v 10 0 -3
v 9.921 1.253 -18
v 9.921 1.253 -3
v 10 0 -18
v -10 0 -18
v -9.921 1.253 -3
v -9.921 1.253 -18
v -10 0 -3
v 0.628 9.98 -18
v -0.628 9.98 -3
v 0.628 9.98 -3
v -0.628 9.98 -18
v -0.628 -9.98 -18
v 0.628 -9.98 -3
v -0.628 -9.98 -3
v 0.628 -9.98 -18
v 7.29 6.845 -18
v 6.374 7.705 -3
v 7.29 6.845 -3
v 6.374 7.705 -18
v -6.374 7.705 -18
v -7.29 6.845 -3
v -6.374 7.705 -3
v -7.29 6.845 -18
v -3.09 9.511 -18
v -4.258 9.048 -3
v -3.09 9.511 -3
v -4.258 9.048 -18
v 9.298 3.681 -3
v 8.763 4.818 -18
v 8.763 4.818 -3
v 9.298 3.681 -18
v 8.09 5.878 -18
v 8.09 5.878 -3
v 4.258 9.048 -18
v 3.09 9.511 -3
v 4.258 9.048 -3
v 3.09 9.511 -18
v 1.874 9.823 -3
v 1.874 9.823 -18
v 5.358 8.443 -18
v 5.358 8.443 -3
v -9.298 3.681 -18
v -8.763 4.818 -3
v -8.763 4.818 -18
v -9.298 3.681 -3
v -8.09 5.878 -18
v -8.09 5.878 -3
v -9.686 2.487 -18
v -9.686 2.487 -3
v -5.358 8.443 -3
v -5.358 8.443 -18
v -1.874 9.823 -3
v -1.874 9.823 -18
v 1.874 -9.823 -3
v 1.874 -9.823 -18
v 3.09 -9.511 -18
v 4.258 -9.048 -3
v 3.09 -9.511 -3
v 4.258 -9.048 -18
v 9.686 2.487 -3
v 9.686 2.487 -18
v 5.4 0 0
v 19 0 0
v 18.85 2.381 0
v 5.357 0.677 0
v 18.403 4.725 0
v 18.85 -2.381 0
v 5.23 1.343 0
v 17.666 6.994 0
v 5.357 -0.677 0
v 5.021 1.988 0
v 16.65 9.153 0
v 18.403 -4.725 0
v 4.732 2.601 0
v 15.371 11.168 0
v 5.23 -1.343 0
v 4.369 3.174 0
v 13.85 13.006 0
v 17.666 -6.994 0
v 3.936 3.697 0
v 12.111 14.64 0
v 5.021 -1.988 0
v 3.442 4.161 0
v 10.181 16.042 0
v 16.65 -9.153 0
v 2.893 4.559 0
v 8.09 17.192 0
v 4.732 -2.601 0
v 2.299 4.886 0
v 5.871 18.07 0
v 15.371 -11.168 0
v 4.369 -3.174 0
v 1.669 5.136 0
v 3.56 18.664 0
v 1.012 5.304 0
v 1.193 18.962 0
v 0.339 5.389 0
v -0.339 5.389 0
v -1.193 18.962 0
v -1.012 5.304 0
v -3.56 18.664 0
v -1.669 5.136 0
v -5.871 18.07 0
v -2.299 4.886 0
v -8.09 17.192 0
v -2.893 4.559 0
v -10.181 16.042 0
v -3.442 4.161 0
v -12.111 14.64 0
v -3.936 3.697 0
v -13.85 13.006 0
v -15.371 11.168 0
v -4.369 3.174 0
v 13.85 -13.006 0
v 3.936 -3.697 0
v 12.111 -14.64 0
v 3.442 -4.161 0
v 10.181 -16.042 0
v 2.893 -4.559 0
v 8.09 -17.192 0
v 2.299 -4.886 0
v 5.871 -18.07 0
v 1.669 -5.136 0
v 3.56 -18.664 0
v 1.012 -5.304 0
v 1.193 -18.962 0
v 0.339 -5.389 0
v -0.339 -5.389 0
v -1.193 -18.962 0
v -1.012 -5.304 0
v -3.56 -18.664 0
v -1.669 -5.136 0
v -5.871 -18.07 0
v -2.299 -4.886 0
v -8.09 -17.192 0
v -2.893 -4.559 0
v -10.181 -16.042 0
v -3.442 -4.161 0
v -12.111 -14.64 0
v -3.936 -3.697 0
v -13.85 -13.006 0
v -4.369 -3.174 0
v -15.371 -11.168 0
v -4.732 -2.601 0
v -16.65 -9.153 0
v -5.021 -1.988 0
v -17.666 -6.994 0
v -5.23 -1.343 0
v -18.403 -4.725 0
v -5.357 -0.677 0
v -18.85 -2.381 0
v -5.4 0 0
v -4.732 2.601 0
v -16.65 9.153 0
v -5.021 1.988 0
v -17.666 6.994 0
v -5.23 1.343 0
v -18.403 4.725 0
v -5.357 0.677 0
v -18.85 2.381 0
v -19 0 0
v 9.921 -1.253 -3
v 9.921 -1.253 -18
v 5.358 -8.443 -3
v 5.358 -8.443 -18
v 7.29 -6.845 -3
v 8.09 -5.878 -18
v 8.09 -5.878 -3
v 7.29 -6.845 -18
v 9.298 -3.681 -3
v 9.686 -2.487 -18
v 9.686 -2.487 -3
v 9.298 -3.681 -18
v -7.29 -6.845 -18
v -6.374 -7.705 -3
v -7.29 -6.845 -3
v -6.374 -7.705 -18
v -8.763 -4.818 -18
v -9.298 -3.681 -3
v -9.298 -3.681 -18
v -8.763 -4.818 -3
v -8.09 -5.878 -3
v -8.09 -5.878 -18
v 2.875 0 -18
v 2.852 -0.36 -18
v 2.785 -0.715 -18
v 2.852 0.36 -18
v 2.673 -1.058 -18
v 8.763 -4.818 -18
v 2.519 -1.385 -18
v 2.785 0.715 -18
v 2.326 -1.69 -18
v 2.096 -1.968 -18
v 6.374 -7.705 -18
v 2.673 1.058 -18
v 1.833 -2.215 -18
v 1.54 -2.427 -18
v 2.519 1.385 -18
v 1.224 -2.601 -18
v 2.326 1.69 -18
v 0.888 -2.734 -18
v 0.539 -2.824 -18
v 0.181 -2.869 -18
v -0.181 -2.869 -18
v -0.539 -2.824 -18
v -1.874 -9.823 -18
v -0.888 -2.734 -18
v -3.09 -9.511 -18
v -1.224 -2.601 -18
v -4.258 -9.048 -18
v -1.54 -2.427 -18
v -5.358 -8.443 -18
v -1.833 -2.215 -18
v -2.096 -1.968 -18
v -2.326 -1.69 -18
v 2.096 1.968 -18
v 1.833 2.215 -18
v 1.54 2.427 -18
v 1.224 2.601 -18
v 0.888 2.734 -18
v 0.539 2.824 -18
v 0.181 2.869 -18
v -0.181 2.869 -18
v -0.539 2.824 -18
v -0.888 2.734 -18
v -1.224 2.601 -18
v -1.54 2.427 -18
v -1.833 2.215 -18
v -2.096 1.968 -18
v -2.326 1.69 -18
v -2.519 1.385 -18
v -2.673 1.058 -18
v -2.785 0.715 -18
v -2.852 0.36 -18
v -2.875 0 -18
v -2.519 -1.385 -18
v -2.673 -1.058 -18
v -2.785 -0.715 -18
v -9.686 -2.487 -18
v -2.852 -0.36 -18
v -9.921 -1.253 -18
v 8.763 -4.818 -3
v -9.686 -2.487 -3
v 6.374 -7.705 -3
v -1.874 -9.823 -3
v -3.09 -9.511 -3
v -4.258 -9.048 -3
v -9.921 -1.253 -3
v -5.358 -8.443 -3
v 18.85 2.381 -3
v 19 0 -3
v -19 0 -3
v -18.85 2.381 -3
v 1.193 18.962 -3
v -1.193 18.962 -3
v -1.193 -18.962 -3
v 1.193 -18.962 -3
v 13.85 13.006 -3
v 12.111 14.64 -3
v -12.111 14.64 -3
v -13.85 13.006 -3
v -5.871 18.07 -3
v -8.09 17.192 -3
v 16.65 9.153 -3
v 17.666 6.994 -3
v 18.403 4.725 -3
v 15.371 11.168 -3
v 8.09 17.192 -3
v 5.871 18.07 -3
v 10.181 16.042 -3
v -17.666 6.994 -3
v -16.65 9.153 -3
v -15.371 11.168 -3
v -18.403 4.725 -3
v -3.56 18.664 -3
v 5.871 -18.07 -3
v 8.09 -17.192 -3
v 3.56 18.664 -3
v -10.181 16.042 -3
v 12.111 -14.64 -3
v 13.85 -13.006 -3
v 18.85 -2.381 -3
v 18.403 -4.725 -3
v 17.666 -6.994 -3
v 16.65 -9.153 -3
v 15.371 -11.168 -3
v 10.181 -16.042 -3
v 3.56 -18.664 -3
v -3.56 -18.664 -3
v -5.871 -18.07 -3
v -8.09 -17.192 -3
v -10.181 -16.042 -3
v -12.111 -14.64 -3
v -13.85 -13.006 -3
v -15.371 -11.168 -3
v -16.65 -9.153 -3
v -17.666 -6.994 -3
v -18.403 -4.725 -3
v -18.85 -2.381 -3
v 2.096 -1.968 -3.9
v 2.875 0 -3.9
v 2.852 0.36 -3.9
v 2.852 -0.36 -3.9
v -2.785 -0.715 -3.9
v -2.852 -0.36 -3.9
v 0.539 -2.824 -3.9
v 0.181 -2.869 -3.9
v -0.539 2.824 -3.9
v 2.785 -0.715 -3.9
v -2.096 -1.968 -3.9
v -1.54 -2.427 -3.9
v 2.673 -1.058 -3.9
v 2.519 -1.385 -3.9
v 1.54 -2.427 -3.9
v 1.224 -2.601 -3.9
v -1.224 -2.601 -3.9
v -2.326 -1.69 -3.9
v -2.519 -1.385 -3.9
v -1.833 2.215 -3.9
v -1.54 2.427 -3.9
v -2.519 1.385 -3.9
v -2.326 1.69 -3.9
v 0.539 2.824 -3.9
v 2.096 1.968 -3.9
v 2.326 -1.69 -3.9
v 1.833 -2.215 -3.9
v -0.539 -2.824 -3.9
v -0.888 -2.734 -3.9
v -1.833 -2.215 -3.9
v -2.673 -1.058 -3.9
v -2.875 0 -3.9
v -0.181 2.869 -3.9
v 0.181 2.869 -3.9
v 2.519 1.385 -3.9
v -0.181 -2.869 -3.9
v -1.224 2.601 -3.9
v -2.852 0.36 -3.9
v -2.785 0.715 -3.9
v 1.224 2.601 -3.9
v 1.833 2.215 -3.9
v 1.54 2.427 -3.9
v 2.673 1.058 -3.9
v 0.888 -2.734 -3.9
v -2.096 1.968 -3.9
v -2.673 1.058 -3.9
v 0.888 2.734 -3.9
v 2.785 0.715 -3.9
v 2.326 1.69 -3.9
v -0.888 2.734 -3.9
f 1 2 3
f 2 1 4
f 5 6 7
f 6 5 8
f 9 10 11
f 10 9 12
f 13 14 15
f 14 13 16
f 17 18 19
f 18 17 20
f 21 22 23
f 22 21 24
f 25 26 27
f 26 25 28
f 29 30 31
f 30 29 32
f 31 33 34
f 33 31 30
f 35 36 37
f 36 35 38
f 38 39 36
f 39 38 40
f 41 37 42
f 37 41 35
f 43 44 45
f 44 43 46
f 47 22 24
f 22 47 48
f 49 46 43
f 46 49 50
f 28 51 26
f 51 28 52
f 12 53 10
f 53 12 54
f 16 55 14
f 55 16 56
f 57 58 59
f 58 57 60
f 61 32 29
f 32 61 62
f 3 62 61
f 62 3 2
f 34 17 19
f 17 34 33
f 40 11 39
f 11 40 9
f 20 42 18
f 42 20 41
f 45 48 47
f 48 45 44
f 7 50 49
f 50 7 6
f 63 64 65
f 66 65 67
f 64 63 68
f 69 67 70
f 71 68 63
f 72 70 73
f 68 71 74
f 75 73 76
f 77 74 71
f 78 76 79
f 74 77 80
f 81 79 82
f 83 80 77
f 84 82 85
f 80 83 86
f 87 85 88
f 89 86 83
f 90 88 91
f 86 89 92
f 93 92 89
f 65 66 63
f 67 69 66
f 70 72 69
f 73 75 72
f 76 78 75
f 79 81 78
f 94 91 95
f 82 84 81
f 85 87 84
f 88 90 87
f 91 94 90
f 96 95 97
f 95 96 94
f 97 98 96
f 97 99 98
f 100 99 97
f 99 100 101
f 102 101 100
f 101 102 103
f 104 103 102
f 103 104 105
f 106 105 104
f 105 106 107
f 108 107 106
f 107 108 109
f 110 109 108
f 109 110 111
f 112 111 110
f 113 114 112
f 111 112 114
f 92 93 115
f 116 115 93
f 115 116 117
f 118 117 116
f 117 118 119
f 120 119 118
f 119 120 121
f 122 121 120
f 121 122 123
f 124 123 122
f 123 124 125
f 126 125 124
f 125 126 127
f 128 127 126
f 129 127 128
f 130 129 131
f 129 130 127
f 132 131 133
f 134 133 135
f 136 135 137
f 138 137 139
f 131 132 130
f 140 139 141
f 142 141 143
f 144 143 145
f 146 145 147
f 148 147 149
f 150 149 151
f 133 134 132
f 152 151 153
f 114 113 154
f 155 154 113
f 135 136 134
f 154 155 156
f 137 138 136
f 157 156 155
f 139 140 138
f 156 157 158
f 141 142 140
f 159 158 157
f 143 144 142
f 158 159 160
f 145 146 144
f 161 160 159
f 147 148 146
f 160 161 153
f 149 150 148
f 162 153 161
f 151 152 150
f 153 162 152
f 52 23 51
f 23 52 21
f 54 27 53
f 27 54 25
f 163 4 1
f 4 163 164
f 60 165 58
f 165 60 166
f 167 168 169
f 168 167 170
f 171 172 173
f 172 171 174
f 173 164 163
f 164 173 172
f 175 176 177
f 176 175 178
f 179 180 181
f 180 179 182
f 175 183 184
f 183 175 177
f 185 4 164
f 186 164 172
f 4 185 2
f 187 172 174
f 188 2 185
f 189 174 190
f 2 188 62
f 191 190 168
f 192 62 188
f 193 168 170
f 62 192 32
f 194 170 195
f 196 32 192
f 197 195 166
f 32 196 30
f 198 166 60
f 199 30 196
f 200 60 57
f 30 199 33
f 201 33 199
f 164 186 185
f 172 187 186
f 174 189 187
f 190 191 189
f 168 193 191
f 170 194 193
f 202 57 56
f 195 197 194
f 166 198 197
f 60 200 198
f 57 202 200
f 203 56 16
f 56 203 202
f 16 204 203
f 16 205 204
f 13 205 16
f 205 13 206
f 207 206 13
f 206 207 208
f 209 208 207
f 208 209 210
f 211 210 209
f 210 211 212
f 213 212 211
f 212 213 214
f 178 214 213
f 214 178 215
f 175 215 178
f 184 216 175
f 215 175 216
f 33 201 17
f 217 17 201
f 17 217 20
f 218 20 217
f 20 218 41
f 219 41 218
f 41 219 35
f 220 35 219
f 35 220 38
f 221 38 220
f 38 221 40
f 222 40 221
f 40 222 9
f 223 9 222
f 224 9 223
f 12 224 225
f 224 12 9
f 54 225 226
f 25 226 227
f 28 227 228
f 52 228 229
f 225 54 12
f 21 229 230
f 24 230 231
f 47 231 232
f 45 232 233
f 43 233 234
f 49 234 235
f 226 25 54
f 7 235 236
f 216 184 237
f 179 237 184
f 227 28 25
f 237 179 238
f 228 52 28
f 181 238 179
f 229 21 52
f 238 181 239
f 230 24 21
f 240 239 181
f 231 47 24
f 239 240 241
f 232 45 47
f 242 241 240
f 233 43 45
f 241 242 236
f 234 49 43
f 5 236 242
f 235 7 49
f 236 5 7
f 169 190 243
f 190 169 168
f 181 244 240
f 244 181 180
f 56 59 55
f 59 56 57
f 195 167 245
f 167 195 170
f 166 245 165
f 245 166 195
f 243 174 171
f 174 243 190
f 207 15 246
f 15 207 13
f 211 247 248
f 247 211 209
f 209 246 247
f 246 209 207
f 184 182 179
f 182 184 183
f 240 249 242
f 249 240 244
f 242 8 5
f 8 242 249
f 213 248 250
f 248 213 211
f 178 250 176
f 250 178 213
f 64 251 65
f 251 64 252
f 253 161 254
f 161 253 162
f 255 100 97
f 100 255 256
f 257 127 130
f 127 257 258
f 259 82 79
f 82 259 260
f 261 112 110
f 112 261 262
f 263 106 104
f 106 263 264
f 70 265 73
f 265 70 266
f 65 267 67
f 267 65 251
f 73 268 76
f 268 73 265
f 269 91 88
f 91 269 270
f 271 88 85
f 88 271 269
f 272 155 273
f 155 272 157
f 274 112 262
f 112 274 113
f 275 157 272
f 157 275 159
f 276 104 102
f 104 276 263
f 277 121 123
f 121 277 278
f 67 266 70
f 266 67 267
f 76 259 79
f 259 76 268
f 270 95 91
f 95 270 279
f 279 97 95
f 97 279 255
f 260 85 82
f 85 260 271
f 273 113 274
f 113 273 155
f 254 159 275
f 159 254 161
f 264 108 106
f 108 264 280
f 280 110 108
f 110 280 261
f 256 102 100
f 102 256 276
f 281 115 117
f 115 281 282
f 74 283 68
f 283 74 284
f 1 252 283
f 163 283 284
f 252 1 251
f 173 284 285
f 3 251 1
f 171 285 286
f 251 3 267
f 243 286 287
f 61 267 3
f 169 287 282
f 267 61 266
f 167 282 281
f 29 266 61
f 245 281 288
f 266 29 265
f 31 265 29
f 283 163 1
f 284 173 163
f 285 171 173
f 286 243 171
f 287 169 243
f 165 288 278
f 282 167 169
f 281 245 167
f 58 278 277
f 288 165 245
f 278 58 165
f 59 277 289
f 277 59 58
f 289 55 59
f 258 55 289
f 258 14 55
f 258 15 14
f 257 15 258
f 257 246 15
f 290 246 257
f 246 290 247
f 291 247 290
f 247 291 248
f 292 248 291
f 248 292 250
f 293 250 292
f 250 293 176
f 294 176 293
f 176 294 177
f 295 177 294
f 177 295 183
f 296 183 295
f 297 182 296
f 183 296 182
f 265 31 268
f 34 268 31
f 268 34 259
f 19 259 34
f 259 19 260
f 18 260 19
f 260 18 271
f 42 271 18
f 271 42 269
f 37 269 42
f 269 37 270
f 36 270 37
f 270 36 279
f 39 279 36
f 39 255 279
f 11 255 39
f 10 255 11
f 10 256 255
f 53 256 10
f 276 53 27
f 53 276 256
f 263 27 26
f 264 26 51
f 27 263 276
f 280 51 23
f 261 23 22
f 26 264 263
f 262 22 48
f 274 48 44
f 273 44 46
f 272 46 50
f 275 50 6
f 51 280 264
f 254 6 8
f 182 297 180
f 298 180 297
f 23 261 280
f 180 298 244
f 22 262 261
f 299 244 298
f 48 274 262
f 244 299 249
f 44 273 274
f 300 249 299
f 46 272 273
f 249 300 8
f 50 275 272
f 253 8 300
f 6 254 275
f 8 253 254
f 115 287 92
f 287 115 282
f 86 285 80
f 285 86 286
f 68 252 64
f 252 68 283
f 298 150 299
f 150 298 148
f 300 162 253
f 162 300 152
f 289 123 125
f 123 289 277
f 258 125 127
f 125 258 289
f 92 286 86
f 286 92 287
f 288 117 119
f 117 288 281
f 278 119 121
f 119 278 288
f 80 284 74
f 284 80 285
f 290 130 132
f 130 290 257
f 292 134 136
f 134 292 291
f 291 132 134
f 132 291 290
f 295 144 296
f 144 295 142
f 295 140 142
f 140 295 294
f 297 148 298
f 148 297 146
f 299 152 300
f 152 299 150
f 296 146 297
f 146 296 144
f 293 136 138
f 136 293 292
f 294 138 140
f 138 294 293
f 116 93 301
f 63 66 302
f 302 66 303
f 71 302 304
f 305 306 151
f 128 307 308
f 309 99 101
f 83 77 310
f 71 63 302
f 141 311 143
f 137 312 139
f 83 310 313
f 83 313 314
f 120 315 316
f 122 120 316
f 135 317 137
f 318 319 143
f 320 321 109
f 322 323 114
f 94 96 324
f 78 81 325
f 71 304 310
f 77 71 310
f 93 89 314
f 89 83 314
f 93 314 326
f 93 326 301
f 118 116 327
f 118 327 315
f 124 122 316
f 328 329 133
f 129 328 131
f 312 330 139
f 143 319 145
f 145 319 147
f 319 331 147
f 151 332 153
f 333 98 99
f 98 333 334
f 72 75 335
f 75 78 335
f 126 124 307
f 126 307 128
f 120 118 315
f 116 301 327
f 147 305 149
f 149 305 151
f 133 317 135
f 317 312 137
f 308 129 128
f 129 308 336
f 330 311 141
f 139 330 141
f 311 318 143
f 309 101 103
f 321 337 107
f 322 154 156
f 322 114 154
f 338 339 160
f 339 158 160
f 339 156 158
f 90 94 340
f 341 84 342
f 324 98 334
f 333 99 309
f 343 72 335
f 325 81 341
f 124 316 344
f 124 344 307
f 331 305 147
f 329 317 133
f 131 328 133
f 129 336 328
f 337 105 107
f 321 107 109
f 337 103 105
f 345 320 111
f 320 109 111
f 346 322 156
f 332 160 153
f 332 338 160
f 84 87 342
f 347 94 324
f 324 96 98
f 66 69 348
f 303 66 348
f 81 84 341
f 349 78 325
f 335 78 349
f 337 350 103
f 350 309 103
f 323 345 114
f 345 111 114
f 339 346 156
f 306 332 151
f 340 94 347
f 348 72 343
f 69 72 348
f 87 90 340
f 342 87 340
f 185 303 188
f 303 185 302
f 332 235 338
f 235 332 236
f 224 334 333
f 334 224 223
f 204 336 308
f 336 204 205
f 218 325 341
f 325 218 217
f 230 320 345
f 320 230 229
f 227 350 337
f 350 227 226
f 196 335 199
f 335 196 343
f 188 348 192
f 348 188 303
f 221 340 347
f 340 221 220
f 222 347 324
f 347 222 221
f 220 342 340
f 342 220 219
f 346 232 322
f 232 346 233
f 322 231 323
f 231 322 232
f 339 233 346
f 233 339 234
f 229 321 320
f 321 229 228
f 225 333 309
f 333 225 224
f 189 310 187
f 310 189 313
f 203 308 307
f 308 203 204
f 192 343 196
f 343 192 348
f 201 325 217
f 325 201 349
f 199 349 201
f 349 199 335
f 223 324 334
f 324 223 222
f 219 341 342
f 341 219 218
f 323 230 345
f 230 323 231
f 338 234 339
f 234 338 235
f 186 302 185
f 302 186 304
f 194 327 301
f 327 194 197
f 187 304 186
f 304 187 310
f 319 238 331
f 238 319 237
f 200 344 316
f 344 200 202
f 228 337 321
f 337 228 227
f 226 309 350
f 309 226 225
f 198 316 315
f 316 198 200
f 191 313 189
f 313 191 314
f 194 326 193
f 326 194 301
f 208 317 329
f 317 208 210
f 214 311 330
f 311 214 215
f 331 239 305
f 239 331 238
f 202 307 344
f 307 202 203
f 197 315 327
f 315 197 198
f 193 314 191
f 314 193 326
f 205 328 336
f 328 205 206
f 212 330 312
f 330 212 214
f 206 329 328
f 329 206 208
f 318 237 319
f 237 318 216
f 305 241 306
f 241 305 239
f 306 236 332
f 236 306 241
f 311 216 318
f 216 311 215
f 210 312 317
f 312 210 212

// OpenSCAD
$fn = 50;


difference() {
	union() {
		translate(v = [0, 0, -18.0000000000]) {
			cylinder(h = 18, r = 10.0000000000);
		}
		translate(v = [0, 0, -3.0000000000]) {
			cylinder(h = 3, r = 19.0000000000);
		}
	}
	union() {
		translate(v = [0, 0, 0]) {
			rotate(a = [0, 0, 0]) {
				difference() {
					union() {
						#translate(v = [0, 0, -18.0000000000]) {
							cylinder(h = 18, r = 2.6000000000);
						}
						#translate(v = [0, 0, -3.9000000000]) {
							cylinder(h = 3.9000000000, r = 10.0000000000, r1 = 2.8750000000, r2 = 5.4000000000);
						}
						#translate(v = [0, 0, -18.0000000000]) {
							cylinder(h = 18, r = 2.8750000000);
						}
						#translate(v = [0, 0, -18.0000000000]) {
							cylinder(h = 18, r = 2.6000000000);
						}
					}
					union();
				}
			}
		}
	}
}
